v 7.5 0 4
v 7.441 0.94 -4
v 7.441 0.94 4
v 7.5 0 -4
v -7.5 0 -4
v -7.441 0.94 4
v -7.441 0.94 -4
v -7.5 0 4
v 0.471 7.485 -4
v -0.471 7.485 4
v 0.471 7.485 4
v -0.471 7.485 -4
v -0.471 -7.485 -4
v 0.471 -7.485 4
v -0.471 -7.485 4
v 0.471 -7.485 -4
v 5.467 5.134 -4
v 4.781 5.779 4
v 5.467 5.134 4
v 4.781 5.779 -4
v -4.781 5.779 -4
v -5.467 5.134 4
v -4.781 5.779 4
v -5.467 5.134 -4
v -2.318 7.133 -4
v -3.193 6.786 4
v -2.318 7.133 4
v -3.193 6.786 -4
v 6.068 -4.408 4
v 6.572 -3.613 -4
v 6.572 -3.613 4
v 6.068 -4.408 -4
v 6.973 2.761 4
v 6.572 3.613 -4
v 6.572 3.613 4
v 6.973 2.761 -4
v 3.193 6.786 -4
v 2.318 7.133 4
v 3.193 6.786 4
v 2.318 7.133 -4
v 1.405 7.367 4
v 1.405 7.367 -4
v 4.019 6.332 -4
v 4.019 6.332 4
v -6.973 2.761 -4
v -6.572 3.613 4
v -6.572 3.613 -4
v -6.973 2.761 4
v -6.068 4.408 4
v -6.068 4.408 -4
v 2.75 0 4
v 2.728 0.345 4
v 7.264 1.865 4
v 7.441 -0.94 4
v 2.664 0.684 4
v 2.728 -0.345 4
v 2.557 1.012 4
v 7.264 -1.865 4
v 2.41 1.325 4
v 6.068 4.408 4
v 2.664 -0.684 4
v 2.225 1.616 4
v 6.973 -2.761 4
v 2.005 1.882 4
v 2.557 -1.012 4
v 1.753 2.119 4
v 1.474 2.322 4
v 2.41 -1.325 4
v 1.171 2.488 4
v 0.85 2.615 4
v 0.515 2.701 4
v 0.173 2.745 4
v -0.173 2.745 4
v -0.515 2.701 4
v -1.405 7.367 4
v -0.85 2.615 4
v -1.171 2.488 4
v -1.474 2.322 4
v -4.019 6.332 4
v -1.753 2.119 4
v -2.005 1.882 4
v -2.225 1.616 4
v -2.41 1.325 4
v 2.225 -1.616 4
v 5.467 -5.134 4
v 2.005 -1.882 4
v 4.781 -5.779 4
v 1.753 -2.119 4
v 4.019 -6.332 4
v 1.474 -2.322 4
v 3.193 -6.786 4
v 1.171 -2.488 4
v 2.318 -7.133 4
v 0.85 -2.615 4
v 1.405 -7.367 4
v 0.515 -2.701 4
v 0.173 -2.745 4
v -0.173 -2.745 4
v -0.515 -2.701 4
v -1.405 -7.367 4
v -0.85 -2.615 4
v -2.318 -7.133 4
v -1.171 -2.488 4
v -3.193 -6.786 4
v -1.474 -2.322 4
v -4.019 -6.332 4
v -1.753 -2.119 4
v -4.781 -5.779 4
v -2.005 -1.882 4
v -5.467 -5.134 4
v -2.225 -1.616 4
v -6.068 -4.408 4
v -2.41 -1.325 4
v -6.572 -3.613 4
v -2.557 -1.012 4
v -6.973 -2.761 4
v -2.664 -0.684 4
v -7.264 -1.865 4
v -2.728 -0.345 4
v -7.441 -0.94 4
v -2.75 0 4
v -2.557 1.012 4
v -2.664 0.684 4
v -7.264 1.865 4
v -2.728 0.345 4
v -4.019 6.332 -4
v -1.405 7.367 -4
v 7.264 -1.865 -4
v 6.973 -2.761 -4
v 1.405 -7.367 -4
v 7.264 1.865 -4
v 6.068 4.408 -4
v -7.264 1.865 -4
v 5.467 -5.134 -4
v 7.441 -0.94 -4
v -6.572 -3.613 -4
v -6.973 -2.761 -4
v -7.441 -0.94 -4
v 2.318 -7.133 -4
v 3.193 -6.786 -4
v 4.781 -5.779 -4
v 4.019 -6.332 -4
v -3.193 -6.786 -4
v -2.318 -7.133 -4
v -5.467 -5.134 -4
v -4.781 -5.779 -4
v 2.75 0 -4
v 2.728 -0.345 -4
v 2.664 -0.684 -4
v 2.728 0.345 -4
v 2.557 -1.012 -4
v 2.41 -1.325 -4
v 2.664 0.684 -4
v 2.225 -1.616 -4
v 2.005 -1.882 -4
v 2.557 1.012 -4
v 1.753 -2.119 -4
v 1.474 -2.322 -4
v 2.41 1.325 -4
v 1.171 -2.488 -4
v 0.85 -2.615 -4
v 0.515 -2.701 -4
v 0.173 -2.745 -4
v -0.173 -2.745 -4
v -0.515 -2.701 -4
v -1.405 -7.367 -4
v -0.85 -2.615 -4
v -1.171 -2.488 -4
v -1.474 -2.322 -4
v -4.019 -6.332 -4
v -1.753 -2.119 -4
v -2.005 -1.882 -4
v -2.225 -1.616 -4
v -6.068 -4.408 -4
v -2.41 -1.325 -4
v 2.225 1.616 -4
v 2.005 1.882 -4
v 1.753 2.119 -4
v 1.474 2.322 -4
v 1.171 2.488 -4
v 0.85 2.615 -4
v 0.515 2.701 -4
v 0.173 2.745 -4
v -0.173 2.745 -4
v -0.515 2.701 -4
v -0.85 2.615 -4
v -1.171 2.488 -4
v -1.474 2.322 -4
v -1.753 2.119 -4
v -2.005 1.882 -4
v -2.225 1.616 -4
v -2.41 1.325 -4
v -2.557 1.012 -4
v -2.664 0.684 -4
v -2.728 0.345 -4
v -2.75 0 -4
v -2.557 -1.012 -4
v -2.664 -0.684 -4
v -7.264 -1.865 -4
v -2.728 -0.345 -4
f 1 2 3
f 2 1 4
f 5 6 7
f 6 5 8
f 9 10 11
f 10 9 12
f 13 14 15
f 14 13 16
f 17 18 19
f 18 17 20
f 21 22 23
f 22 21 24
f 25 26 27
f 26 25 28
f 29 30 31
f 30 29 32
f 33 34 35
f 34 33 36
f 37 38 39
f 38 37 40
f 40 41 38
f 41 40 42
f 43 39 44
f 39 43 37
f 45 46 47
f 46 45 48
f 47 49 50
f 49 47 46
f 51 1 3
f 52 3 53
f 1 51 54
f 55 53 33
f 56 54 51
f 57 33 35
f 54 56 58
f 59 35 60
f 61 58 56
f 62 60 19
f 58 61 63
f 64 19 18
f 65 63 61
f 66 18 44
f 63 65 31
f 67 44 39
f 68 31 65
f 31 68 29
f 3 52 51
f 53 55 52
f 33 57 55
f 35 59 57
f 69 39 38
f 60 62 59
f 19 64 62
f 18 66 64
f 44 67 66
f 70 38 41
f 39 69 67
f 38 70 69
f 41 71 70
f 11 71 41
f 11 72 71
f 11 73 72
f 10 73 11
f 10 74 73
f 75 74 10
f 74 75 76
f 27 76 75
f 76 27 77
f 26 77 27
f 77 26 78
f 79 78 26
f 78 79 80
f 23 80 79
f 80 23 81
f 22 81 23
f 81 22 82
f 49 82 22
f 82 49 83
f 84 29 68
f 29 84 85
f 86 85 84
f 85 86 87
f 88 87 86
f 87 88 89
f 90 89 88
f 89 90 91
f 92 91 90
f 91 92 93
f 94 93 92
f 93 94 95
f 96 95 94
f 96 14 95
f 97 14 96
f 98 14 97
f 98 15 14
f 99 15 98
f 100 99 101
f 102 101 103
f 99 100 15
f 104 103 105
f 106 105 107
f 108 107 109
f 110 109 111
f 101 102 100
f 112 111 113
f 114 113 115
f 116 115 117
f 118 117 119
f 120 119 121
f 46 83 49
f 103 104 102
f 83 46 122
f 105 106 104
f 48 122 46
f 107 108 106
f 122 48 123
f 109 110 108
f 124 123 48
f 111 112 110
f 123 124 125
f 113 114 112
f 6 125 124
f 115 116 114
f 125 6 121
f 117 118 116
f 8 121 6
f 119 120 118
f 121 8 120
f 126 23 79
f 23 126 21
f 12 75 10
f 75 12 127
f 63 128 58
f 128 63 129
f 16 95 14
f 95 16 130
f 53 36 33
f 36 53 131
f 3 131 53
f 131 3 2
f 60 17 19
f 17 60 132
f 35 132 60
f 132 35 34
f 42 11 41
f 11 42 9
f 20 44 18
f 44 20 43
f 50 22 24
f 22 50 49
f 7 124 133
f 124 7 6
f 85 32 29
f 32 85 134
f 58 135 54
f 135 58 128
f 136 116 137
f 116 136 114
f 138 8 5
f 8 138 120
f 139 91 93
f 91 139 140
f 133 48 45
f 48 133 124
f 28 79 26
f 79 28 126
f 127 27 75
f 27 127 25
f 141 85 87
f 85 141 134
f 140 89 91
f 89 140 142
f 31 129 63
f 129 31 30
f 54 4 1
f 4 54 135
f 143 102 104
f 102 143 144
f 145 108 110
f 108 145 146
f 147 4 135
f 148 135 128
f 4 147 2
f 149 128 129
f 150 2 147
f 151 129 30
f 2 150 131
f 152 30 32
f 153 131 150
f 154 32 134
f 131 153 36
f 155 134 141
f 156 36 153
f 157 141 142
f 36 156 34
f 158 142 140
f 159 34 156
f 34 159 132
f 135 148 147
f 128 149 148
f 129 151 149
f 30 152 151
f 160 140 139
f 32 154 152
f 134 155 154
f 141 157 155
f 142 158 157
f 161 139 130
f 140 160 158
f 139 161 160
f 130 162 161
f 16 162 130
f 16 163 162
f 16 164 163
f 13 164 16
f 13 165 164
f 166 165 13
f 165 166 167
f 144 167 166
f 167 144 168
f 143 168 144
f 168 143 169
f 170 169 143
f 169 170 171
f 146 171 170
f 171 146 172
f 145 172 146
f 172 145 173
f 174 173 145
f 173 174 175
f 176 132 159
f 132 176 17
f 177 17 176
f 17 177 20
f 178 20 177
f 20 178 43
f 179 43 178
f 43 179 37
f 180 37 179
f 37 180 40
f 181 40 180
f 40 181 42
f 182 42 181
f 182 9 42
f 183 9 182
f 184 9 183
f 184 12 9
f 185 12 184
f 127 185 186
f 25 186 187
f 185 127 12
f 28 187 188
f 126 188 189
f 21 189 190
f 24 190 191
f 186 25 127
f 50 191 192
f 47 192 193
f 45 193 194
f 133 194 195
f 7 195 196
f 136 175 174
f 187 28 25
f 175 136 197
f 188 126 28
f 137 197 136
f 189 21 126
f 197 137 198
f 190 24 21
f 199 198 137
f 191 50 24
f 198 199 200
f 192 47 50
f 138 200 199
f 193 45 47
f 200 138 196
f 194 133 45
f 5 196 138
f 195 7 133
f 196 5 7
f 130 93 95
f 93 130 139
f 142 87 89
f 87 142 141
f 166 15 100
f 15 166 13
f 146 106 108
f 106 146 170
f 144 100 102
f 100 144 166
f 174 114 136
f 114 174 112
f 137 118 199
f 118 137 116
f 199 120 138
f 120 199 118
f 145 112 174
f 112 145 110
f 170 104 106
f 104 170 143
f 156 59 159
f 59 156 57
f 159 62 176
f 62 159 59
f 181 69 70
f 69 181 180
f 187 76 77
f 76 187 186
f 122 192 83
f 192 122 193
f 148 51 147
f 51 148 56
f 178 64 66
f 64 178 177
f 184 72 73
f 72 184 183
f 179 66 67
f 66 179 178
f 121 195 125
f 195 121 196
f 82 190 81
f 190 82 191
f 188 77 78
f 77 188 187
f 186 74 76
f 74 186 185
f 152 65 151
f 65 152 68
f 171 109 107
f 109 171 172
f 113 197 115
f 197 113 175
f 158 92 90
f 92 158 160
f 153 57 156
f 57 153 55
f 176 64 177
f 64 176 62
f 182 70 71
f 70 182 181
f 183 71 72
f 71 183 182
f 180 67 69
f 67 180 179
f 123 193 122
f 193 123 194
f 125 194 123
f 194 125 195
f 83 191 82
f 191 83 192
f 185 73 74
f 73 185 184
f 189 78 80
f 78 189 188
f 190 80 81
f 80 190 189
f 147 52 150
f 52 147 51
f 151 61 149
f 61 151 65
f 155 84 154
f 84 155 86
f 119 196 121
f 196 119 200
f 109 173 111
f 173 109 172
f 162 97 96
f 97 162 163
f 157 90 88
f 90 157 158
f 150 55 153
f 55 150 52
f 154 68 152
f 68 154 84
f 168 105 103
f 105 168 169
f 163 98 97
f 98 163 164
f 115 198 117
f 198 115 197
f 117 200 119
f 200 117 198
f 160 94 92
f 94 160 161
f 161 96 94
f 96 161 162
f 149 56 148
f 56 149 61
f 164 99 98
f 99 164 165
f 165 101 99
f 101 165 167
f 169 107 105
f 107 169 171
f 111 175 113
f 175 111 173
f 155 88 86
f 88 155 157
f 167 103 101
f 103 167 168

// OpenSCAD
$fn = 50;


difference() {
	union() {
		translate(v = [0, 0, -4.0000000000]) {
			cylinder(h = 8, r = 7.5000000000);
		}
	}
	union() {
		translate(v = [0, 0, -100.0000000000]) {
			cylinder(h = 200, r = 2.7500000000);
		}
	}
}
